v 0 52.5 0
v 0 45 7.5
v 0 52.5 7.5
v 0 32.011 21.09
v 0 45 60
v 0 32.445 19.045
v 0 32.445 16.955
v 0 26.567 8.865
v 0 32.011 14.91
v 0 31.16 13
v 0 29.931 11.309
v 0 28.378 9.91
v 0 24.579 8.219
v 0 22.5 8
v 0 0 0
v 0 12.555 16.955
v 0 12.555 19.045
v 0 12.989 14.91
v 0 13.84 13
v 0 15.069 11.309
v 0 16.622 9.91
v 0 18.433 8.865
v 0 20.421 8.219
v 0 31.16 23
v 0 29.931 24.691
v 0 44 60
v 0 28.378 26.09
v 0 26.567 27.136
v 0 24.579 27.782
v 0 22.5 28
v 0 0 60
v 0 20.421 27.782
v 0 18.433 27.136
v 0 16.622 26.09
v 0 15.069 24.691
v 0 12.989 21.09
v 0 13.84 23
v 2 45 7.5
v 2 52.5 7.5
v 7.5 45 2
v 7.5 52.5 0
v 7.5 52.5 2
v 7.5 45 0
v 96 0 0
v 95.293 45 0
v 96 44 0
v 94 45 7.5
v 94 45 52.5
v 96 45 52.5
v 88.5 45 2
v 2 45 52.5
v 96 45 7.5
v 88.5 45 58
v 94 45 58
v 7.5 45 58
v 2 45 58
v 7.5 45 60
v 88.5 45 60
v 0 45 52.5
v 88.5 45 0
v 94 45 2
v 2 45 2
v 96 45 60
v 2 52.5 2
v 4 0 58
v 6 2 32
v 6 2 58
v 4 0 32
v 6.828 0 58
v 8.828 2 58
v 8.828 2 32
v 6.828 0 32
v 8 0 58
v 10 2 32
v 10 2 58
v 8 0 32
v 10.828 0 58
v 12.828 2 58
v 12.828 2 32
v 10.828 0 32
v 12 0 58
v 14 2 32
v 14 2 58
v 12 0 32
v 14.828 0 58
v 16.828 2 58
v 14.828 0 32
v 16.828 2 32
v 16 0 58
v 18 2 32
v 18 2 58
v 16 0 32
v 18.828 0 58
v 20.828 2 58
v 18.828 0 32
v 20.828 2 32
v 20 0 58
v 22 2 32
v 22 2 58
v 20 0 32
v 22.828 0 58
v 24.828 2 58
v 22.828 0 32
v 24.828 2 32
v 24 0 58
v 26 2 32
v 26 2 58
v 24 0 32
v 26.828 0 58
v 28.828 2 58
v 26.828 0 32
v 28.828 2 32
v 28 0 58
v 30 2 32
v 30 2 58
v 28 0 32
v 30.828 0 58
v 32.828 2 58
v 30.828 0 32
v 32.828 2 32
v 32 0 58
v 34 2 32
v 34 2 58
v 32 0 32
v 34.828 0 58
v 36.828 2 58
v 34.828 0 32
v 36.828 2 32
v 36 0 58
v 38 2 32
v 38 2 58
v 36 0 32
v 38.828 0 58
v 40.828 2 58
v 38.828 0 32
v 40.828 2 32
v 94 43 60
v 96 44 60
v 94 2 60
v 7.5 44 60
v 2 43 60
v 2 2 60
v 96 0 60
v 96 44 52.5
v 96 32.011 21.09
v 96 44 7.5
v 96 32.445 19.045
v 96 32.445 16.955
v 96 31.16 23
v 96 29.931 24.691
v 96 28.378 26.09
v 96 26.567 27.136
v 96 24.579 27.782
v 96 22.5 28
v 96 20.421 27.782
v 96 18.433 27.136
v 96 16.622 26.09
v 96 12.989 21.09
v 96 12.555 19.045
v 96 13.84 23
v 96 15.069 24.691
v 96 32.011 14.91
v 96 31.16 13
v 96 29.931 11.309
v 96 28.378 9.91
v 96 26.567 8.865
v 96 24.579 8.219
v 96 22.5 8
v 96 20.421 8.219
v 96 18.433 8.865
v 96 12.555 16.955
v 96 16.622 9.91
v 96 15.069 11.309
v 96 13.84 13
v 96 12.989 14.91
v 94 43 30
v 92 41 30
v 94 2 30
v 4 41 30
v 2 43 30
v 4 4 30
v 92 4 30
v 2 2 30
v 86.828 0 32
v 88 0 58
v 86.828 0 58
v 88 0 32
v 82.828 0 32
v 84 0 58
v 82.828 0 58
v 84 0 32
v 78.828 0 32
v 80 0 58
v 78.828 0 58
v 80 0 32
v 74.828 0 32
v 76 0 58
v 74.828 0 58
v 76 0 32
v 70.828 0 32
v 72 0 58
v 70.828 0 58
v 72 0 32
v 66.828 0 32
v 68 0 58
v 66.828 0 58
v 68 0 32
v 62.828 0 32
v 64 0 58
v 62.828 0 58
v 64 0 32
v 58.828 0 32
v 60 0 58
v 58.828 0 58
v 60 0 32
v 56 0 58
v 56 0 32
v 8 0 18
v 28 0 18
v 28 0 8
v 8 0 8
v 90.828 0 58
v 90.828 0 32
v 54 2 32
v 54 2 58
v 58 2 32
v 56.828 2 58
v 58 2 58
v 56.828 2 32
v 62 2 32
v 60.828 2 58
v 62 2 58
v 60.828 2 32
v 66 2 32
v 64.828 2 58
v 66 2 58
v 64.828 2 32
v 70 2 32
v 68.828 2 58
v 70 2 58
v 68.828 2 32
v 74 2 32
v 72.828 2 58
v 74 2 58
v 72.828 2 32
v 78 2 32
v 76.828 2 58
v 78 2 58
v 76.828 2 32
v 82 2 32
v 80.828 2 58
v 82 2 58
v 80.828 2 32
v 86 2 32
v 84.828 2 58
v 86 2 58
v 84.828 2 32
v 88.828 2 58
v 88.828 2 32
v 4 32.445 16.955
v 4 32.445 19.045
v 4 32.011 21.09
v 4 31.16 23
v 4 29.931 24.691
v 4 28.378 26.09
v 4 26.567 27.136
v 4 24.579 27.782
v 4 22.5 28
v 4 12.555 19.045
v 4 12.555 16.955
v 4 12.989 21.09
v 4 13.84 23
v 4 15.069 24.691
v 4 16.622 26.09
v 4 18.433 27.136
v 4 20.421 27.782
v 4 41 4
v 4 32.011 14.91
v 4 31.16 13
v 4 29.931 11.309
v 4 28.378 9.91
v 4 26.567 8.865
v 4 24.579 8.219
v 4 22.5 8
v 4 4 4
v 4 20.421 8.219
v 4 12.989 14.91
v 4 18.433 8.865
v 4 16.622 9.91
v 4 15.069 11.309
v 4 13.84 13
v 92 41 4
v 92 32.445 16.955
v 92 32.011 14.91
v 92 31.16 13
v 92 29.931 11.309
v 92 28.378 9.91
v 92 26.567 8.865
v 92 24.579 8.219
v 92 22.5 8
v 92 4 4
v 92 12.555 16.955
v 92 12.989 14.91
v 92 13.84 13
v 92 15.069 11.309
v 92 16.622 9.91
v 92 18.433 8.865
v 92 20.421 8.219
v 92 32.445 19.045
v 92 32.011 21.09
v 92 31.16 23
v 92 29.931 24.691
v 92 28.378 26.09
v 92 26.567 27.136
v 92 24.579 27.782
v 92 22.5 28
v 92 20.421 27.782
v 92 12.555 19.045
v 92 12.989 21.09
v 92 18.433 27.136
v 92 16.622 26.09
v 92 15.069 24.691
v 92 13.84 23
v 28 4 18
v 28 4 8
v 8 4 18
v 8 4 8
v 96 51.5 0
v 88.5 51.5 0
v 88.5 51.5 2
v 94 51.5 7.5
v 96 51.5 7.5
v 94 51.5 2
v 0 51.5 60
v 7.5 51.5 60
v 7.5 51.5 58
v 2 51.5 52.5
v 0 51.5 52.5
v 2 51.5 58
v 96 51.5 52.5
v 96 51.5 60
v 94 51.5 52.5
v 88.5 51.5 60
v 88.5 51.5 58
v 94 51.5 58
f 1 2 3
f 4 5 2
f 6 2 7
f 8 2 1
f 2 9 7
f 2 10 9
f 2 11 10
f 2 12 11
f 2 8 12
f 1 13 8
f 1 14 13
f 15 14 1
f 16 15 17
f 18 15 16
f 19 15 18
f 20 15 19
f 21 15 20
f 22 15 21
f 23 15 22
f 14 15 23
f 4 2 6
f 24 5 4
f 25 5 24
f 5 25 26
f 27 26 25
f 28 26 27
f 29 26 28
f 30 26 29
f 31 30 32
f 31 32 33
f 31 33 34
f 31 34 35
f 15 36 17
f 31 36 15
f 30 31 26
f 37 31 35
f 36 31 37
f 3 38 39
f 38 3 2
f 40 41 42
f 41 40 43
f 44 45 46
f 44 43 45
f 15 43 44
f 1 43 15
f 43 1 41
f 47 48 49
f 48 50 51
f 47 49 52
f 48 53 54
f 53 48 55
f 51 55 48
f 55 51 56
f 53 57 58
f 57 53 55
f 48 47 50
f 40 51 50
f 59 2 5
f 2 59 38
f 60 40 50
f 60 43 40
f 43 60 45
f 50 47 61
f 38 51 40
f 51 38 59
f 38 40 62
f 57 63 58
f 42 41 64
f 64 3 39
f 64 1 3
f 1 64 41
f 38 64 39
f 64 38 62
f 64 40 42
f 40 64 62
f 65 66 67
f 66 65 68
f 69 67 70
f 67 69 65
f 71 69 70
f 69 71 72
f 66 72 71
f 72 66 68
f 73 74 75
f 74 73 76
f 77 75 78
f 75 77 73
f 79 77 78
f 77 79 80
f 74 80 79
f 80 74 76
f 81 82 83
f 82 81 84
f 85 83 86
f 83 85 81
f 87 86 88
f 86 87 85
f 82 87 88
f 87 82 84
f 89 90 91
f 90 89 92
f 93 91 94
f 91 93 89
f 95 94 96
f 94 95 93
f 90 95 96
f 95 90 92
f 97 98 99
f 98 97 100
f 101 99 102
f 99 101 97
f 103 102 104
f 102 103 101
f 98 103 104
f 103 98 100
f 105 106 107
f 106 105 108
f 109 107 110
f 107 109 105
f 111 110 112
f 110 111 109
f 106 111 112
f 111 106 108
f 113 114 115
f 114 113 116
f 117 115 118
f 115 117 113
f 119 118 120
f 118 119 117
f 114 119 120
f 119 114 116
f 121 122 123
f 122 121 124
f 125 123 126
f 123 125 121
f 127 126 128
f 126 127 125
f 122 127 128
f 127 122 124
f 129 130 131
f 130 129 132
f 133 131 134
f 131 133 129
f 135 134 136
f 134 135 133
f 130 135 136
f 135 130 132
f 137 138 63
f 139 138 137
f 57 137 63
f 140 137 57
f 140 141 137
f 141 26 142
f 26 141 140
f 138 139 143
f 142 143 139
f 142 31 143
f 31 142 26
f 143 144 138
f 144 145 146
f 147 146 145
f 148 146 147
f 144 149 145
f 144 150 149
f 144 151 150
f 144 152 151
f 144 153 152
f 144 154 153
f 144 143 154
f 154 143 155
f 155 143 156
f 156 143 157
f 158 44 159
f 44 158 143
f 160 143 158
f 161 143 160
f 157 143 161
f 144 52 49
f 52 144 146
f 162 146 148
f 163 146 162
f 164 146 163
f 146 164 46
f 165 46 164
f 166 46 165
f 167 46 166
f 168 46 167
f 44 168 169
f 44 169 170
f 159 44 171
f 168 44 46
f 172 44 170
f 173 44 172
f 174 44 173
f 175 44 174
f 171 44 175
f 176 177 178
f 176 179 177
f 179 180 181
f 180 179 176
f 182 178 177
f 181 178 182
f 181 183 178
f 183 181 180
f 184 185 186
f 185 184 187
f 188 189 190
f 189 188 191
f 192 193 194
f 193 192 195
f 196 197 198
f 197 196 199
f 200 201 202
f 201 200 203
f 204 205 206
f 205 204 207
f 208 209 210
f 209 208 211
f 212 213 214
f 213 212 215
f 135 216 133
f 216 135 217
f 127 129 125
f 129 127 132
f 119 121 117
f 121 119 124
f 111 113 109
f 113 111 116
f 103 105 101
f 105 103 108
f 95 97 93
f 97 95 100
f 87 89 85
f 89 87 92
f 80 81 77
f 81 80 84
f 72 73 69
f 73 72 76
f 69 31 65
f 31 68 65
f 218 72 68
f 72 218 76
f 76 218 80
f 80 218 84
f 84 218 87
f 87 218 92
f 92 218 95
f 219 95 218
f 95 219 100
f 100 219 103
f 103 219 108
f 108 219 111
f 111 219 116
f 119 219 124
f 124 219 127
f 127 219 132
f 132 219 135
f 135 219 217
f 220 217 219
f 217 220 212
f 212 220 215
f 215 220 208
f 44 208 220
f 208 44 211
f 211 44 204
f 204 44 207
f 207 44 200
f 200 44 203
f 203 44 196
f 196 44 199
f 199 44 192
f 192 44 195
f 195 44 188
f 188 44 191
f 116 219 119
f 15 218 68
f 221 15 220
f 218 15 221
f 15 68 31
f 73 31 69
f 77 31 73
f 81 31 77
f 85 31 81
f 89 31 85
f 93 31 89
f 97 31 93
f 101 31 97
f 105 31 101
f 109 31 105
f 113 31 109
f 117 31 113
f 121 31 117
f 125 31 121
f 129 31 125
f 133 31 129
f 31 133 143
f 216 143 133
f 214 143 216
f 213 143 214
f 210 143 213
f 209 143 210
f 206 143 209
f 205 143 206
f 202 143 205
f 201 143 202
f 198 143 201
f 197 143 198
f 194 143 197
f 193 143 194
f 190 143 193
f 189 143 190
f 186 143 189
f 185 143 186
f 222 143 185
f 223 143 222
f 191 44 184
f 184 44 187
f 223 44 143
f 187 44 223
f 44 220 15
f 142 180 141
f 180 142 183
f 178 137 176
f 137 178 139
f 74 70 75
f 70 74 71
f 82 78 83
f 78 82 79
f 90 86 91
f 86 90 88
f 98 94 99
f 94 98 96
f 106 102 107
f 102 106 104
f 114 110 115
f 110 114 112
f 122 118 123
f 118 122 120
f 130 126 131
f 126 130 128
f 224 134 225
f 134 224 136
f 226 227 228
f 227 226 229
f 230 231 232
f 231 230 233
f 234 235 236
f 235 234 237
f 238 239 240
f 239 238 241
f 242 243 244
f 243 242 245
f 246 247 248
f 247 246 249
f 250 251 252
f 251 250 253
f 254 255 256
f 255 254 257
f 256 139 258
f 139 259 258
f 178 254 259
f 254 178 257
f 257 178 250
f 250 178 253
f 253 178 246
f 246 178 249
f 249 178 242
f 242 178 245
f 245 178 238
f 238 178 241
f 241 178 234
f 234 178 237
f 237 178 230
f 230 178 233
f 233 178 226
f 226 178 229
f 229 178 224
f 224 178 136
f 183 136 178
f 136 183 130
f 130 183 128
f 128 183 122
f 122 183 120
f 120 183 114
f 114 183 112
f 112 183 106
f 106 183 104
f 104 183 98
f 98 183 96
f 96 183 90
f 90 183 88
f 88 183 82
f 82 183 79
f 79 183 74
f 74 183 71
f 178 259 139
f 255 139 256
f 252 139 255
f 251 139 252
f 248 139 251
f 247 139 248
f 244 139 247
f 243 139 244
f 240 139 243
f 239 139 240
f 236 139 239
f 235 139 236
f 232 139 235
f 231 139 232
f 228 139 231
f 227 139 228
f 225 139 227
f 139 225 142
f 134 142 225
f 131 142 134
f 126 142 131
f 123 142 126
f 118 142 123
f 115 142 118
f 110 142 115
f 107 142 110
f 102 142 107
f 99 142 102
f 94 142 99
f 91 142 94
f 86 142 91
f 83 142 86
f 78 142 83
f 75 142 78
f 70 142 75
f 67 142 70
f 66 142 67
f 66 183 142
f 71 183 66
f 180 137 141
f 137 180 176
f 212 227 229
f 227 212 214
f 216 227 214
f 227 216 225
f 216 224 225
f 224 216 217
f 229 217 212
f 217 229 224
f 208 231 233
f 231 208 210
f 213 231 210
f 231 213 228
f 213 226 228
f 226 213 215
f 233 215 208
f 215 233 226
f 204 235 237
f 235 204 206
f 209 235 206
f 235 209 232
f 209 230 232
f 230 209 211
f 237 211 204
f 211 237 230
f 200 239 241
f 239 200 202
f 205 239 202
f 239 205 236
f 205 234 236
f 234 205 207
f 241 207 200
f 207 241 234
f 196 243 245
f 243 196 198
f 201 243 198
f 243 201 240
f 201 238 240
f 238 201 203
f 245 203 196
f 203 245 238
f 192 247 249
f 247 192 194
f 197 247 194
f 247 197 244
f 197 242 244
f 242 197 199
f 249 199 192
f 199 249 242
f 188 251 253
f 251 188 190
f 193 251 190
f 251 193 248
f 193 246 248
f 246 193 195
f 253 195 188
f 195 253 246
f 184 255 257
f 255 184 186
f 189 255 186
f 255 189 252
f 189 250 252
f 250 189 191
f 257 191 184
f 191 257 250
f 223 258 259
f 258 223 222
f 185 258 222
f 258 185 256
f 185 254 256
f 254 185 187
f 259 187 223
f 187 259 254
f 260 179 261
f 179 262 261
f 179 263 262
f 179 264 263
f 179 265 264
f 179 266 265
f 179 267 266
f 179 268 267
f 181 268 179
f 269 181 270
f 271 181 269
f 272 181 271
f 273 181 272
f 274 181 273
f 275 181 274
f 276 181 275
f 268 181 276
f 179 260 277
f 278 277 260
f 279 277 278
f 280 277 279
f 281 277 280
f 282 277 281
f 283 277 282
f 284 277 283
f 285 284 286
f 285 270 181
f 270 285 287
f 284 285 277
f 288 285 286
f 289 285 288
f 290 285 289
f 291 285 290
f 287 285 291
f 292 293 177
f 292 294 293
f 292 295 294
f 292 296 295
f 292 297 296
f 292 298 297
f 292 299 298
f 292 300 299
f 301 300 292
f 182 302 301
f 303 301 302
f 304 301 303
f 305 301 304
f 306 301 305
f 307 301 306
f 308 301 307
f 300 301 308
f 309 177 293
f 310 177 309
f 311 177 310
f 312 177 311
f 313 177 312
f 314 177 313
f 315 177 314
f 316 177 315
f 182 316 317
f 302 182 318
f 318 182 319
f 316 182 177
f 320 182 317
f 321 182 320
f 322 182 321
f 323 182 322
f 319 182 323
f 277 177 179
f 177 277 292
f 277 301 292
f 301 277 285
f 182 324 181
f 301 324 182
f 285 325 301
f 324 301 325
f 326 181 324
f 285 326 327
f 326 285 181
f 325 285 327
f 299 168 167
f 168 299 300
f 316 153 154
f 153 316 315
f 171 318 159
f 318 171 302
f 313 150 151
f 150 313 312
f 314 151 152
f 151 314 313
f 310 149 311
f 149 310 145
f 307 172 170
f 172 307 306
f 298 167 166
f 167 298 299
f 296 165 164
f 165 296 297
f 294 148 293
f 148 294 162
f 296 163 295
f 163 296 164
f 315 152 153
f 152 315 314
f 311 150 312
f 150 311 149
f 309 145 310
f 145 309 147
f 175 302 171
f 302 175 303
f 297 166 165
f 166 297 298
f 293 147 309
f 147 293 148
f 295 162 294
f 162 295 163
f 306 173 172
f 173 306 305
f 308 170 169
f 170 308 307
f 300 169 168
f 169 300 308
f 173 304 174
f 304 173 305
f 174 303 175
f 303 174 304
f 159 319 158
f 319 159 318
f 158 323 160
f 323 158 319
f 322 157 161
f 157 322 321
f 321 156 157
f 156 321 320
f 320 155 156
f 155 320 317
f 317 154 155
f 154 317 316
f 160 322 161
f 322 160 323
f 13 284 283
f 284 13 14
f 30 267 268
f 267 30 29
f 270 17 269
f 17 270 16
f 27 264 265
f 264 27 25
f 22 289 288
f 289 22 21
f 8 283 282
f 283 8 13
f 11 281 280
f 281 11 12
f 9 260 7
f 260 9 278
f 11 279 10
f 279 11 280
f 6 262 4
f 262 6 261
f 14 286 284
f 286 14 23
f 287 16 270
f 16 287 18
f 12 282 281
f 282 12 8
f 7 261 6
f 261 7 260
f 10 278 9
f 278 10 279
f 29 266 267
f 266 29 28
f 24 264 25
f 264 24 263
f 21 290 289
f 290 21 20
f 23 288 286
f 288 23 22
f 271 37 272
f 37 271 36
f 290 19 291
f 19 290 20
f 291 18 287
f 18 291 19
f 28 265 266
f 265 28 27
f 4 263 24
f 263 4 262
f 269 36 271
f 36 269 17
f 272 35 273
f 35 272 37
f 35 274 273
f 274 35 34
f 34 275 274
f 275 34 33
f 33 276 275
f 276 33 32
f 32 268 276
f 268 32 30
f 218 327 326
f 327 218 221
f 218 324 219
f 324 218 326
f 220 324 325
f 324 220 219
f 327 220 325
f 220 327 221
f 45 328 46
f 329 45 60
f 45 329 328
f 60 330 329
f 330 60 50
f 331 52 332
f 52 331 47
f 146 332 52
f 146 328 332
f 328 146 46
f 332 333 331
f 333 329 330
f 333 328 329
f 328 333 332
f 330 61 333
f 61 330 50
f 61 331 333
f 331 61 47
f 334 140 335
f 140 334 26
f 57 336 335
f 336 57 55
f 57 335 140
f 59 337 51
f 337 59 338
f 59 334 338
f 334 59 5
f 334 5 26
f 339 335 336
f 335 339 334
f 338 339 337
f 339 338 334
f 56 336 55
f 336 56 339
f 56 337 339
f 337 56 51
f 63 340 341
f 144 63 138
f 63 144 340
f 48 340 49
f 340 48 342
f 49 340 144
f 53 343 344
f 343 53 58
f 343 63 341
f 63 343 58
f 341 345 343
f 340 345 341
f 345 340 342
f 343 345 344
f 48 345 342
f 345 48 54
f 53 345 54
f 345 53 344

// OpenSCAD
union() {
    // 173 x 94 x 43 mm
    x_dim = 94;
    y_dim = 43;
    thick = 2;
    f_depth = 30; // z
    f_height = y_dim + thick; // y
    f_width = x_dim + thick; // x
    r_depth = f_depth;
    r_height = f_height;
    r_width = f_width;
    foot_size = r_depth/4;
    translate([0,0,r_depth]) front(thick, f_width, f_height, f_depth); 
    rear(thick*2,r_width, r_height, f_depth);
    translate([0,r_height,0]) foot(foot_size,thick); // left rear foot
    translate([r_width, r_height-(thick*.5), 0]) rotate([-90,-90,90]) { foot(foot_size,thick); }
    translate([0,r_height-(thick*.5),(r_depth+f_depth)]) rotate ([90,90,90]) {foot(foot_size,thick);}
    translate([r_width,r_height-(thick*.5),(r_depth+f_depth)]) rotate([0,180,0]) { foot(foot_size, thick); }
}

module foot (foot_size,thick) {
    difference() {
        cube([foot_size,foot_size,foot_size]);
        translate([thick, 0,thick]) cube([foot_size,foot_size,foot_size]);
    }
}
module front (thickness, width, height, depth) {
    difference() {
        difference() {
           cube([width,height,depth]); //exterior
           translate([thickness,thickness,0]) cube([width-(2*thickness),height-(2*thickness),depth]); // interior
        }
        louver(thickness, width, depth);
    }
}

module rear (thickness, width, height, depth) {
    difference() { 
        difference() {
           cube([width,height,depth]); //Exterior
           translate([thickness,thickness,thickness]) cube([width-(2*thickness),height-(2*thickness),depth + thickness]); //interior
        }
        right_cord(thickness, width, height, depth, 10);
        left_cord(thickness, width, height, depth, 10);
        switch(thickness, 20, 10);
    }
}

module switch (thickness, sw_x, sw_y) {
    translate([thickness*2, 0, thickness*2]) rotate ([0,0,0]) cube([sw_x,thickness, sw_y]);   
}
module left_cord (thickness, width, height, depth, radius) {
    translate ([0, height/2, radius + thickness*2]) rotate ([0, 90, 0])  cylinder(thickness*8, radius, radius);
}

module right_cord (thickness, width, height, depth, radius) {
    translate ([width - (thickness), height/2, radius + thickness*2]) rotate ([0, 90, 0])  cylinder(thickness*8, radius, radius);
}

module louver (thickness, width, depth) {
    // Left side
    for ( i = [thickness * 2 : 2 * thickness : width/2 - (5 * thickness)] ) {
        translate([i,0,thickness]) rotate(-45,0,0) cube([thickness,(2 * thickness) + (0.5 * thickness * sqrt(2)),(depth-(2 * thickness))]);
    }
    
    // Right side
    for ( i = [ width/2 + (5 * thickness) : 2 * thickness : width - (2 * thickness)] ) {
        translate([i,0-thickness,thickness]) rotate(45,0,0) cube([thickness, (3 * thickness) + (0.5 * thickness * sqrt(2)),(depth-(2 * thickness))]);
    }    
}
